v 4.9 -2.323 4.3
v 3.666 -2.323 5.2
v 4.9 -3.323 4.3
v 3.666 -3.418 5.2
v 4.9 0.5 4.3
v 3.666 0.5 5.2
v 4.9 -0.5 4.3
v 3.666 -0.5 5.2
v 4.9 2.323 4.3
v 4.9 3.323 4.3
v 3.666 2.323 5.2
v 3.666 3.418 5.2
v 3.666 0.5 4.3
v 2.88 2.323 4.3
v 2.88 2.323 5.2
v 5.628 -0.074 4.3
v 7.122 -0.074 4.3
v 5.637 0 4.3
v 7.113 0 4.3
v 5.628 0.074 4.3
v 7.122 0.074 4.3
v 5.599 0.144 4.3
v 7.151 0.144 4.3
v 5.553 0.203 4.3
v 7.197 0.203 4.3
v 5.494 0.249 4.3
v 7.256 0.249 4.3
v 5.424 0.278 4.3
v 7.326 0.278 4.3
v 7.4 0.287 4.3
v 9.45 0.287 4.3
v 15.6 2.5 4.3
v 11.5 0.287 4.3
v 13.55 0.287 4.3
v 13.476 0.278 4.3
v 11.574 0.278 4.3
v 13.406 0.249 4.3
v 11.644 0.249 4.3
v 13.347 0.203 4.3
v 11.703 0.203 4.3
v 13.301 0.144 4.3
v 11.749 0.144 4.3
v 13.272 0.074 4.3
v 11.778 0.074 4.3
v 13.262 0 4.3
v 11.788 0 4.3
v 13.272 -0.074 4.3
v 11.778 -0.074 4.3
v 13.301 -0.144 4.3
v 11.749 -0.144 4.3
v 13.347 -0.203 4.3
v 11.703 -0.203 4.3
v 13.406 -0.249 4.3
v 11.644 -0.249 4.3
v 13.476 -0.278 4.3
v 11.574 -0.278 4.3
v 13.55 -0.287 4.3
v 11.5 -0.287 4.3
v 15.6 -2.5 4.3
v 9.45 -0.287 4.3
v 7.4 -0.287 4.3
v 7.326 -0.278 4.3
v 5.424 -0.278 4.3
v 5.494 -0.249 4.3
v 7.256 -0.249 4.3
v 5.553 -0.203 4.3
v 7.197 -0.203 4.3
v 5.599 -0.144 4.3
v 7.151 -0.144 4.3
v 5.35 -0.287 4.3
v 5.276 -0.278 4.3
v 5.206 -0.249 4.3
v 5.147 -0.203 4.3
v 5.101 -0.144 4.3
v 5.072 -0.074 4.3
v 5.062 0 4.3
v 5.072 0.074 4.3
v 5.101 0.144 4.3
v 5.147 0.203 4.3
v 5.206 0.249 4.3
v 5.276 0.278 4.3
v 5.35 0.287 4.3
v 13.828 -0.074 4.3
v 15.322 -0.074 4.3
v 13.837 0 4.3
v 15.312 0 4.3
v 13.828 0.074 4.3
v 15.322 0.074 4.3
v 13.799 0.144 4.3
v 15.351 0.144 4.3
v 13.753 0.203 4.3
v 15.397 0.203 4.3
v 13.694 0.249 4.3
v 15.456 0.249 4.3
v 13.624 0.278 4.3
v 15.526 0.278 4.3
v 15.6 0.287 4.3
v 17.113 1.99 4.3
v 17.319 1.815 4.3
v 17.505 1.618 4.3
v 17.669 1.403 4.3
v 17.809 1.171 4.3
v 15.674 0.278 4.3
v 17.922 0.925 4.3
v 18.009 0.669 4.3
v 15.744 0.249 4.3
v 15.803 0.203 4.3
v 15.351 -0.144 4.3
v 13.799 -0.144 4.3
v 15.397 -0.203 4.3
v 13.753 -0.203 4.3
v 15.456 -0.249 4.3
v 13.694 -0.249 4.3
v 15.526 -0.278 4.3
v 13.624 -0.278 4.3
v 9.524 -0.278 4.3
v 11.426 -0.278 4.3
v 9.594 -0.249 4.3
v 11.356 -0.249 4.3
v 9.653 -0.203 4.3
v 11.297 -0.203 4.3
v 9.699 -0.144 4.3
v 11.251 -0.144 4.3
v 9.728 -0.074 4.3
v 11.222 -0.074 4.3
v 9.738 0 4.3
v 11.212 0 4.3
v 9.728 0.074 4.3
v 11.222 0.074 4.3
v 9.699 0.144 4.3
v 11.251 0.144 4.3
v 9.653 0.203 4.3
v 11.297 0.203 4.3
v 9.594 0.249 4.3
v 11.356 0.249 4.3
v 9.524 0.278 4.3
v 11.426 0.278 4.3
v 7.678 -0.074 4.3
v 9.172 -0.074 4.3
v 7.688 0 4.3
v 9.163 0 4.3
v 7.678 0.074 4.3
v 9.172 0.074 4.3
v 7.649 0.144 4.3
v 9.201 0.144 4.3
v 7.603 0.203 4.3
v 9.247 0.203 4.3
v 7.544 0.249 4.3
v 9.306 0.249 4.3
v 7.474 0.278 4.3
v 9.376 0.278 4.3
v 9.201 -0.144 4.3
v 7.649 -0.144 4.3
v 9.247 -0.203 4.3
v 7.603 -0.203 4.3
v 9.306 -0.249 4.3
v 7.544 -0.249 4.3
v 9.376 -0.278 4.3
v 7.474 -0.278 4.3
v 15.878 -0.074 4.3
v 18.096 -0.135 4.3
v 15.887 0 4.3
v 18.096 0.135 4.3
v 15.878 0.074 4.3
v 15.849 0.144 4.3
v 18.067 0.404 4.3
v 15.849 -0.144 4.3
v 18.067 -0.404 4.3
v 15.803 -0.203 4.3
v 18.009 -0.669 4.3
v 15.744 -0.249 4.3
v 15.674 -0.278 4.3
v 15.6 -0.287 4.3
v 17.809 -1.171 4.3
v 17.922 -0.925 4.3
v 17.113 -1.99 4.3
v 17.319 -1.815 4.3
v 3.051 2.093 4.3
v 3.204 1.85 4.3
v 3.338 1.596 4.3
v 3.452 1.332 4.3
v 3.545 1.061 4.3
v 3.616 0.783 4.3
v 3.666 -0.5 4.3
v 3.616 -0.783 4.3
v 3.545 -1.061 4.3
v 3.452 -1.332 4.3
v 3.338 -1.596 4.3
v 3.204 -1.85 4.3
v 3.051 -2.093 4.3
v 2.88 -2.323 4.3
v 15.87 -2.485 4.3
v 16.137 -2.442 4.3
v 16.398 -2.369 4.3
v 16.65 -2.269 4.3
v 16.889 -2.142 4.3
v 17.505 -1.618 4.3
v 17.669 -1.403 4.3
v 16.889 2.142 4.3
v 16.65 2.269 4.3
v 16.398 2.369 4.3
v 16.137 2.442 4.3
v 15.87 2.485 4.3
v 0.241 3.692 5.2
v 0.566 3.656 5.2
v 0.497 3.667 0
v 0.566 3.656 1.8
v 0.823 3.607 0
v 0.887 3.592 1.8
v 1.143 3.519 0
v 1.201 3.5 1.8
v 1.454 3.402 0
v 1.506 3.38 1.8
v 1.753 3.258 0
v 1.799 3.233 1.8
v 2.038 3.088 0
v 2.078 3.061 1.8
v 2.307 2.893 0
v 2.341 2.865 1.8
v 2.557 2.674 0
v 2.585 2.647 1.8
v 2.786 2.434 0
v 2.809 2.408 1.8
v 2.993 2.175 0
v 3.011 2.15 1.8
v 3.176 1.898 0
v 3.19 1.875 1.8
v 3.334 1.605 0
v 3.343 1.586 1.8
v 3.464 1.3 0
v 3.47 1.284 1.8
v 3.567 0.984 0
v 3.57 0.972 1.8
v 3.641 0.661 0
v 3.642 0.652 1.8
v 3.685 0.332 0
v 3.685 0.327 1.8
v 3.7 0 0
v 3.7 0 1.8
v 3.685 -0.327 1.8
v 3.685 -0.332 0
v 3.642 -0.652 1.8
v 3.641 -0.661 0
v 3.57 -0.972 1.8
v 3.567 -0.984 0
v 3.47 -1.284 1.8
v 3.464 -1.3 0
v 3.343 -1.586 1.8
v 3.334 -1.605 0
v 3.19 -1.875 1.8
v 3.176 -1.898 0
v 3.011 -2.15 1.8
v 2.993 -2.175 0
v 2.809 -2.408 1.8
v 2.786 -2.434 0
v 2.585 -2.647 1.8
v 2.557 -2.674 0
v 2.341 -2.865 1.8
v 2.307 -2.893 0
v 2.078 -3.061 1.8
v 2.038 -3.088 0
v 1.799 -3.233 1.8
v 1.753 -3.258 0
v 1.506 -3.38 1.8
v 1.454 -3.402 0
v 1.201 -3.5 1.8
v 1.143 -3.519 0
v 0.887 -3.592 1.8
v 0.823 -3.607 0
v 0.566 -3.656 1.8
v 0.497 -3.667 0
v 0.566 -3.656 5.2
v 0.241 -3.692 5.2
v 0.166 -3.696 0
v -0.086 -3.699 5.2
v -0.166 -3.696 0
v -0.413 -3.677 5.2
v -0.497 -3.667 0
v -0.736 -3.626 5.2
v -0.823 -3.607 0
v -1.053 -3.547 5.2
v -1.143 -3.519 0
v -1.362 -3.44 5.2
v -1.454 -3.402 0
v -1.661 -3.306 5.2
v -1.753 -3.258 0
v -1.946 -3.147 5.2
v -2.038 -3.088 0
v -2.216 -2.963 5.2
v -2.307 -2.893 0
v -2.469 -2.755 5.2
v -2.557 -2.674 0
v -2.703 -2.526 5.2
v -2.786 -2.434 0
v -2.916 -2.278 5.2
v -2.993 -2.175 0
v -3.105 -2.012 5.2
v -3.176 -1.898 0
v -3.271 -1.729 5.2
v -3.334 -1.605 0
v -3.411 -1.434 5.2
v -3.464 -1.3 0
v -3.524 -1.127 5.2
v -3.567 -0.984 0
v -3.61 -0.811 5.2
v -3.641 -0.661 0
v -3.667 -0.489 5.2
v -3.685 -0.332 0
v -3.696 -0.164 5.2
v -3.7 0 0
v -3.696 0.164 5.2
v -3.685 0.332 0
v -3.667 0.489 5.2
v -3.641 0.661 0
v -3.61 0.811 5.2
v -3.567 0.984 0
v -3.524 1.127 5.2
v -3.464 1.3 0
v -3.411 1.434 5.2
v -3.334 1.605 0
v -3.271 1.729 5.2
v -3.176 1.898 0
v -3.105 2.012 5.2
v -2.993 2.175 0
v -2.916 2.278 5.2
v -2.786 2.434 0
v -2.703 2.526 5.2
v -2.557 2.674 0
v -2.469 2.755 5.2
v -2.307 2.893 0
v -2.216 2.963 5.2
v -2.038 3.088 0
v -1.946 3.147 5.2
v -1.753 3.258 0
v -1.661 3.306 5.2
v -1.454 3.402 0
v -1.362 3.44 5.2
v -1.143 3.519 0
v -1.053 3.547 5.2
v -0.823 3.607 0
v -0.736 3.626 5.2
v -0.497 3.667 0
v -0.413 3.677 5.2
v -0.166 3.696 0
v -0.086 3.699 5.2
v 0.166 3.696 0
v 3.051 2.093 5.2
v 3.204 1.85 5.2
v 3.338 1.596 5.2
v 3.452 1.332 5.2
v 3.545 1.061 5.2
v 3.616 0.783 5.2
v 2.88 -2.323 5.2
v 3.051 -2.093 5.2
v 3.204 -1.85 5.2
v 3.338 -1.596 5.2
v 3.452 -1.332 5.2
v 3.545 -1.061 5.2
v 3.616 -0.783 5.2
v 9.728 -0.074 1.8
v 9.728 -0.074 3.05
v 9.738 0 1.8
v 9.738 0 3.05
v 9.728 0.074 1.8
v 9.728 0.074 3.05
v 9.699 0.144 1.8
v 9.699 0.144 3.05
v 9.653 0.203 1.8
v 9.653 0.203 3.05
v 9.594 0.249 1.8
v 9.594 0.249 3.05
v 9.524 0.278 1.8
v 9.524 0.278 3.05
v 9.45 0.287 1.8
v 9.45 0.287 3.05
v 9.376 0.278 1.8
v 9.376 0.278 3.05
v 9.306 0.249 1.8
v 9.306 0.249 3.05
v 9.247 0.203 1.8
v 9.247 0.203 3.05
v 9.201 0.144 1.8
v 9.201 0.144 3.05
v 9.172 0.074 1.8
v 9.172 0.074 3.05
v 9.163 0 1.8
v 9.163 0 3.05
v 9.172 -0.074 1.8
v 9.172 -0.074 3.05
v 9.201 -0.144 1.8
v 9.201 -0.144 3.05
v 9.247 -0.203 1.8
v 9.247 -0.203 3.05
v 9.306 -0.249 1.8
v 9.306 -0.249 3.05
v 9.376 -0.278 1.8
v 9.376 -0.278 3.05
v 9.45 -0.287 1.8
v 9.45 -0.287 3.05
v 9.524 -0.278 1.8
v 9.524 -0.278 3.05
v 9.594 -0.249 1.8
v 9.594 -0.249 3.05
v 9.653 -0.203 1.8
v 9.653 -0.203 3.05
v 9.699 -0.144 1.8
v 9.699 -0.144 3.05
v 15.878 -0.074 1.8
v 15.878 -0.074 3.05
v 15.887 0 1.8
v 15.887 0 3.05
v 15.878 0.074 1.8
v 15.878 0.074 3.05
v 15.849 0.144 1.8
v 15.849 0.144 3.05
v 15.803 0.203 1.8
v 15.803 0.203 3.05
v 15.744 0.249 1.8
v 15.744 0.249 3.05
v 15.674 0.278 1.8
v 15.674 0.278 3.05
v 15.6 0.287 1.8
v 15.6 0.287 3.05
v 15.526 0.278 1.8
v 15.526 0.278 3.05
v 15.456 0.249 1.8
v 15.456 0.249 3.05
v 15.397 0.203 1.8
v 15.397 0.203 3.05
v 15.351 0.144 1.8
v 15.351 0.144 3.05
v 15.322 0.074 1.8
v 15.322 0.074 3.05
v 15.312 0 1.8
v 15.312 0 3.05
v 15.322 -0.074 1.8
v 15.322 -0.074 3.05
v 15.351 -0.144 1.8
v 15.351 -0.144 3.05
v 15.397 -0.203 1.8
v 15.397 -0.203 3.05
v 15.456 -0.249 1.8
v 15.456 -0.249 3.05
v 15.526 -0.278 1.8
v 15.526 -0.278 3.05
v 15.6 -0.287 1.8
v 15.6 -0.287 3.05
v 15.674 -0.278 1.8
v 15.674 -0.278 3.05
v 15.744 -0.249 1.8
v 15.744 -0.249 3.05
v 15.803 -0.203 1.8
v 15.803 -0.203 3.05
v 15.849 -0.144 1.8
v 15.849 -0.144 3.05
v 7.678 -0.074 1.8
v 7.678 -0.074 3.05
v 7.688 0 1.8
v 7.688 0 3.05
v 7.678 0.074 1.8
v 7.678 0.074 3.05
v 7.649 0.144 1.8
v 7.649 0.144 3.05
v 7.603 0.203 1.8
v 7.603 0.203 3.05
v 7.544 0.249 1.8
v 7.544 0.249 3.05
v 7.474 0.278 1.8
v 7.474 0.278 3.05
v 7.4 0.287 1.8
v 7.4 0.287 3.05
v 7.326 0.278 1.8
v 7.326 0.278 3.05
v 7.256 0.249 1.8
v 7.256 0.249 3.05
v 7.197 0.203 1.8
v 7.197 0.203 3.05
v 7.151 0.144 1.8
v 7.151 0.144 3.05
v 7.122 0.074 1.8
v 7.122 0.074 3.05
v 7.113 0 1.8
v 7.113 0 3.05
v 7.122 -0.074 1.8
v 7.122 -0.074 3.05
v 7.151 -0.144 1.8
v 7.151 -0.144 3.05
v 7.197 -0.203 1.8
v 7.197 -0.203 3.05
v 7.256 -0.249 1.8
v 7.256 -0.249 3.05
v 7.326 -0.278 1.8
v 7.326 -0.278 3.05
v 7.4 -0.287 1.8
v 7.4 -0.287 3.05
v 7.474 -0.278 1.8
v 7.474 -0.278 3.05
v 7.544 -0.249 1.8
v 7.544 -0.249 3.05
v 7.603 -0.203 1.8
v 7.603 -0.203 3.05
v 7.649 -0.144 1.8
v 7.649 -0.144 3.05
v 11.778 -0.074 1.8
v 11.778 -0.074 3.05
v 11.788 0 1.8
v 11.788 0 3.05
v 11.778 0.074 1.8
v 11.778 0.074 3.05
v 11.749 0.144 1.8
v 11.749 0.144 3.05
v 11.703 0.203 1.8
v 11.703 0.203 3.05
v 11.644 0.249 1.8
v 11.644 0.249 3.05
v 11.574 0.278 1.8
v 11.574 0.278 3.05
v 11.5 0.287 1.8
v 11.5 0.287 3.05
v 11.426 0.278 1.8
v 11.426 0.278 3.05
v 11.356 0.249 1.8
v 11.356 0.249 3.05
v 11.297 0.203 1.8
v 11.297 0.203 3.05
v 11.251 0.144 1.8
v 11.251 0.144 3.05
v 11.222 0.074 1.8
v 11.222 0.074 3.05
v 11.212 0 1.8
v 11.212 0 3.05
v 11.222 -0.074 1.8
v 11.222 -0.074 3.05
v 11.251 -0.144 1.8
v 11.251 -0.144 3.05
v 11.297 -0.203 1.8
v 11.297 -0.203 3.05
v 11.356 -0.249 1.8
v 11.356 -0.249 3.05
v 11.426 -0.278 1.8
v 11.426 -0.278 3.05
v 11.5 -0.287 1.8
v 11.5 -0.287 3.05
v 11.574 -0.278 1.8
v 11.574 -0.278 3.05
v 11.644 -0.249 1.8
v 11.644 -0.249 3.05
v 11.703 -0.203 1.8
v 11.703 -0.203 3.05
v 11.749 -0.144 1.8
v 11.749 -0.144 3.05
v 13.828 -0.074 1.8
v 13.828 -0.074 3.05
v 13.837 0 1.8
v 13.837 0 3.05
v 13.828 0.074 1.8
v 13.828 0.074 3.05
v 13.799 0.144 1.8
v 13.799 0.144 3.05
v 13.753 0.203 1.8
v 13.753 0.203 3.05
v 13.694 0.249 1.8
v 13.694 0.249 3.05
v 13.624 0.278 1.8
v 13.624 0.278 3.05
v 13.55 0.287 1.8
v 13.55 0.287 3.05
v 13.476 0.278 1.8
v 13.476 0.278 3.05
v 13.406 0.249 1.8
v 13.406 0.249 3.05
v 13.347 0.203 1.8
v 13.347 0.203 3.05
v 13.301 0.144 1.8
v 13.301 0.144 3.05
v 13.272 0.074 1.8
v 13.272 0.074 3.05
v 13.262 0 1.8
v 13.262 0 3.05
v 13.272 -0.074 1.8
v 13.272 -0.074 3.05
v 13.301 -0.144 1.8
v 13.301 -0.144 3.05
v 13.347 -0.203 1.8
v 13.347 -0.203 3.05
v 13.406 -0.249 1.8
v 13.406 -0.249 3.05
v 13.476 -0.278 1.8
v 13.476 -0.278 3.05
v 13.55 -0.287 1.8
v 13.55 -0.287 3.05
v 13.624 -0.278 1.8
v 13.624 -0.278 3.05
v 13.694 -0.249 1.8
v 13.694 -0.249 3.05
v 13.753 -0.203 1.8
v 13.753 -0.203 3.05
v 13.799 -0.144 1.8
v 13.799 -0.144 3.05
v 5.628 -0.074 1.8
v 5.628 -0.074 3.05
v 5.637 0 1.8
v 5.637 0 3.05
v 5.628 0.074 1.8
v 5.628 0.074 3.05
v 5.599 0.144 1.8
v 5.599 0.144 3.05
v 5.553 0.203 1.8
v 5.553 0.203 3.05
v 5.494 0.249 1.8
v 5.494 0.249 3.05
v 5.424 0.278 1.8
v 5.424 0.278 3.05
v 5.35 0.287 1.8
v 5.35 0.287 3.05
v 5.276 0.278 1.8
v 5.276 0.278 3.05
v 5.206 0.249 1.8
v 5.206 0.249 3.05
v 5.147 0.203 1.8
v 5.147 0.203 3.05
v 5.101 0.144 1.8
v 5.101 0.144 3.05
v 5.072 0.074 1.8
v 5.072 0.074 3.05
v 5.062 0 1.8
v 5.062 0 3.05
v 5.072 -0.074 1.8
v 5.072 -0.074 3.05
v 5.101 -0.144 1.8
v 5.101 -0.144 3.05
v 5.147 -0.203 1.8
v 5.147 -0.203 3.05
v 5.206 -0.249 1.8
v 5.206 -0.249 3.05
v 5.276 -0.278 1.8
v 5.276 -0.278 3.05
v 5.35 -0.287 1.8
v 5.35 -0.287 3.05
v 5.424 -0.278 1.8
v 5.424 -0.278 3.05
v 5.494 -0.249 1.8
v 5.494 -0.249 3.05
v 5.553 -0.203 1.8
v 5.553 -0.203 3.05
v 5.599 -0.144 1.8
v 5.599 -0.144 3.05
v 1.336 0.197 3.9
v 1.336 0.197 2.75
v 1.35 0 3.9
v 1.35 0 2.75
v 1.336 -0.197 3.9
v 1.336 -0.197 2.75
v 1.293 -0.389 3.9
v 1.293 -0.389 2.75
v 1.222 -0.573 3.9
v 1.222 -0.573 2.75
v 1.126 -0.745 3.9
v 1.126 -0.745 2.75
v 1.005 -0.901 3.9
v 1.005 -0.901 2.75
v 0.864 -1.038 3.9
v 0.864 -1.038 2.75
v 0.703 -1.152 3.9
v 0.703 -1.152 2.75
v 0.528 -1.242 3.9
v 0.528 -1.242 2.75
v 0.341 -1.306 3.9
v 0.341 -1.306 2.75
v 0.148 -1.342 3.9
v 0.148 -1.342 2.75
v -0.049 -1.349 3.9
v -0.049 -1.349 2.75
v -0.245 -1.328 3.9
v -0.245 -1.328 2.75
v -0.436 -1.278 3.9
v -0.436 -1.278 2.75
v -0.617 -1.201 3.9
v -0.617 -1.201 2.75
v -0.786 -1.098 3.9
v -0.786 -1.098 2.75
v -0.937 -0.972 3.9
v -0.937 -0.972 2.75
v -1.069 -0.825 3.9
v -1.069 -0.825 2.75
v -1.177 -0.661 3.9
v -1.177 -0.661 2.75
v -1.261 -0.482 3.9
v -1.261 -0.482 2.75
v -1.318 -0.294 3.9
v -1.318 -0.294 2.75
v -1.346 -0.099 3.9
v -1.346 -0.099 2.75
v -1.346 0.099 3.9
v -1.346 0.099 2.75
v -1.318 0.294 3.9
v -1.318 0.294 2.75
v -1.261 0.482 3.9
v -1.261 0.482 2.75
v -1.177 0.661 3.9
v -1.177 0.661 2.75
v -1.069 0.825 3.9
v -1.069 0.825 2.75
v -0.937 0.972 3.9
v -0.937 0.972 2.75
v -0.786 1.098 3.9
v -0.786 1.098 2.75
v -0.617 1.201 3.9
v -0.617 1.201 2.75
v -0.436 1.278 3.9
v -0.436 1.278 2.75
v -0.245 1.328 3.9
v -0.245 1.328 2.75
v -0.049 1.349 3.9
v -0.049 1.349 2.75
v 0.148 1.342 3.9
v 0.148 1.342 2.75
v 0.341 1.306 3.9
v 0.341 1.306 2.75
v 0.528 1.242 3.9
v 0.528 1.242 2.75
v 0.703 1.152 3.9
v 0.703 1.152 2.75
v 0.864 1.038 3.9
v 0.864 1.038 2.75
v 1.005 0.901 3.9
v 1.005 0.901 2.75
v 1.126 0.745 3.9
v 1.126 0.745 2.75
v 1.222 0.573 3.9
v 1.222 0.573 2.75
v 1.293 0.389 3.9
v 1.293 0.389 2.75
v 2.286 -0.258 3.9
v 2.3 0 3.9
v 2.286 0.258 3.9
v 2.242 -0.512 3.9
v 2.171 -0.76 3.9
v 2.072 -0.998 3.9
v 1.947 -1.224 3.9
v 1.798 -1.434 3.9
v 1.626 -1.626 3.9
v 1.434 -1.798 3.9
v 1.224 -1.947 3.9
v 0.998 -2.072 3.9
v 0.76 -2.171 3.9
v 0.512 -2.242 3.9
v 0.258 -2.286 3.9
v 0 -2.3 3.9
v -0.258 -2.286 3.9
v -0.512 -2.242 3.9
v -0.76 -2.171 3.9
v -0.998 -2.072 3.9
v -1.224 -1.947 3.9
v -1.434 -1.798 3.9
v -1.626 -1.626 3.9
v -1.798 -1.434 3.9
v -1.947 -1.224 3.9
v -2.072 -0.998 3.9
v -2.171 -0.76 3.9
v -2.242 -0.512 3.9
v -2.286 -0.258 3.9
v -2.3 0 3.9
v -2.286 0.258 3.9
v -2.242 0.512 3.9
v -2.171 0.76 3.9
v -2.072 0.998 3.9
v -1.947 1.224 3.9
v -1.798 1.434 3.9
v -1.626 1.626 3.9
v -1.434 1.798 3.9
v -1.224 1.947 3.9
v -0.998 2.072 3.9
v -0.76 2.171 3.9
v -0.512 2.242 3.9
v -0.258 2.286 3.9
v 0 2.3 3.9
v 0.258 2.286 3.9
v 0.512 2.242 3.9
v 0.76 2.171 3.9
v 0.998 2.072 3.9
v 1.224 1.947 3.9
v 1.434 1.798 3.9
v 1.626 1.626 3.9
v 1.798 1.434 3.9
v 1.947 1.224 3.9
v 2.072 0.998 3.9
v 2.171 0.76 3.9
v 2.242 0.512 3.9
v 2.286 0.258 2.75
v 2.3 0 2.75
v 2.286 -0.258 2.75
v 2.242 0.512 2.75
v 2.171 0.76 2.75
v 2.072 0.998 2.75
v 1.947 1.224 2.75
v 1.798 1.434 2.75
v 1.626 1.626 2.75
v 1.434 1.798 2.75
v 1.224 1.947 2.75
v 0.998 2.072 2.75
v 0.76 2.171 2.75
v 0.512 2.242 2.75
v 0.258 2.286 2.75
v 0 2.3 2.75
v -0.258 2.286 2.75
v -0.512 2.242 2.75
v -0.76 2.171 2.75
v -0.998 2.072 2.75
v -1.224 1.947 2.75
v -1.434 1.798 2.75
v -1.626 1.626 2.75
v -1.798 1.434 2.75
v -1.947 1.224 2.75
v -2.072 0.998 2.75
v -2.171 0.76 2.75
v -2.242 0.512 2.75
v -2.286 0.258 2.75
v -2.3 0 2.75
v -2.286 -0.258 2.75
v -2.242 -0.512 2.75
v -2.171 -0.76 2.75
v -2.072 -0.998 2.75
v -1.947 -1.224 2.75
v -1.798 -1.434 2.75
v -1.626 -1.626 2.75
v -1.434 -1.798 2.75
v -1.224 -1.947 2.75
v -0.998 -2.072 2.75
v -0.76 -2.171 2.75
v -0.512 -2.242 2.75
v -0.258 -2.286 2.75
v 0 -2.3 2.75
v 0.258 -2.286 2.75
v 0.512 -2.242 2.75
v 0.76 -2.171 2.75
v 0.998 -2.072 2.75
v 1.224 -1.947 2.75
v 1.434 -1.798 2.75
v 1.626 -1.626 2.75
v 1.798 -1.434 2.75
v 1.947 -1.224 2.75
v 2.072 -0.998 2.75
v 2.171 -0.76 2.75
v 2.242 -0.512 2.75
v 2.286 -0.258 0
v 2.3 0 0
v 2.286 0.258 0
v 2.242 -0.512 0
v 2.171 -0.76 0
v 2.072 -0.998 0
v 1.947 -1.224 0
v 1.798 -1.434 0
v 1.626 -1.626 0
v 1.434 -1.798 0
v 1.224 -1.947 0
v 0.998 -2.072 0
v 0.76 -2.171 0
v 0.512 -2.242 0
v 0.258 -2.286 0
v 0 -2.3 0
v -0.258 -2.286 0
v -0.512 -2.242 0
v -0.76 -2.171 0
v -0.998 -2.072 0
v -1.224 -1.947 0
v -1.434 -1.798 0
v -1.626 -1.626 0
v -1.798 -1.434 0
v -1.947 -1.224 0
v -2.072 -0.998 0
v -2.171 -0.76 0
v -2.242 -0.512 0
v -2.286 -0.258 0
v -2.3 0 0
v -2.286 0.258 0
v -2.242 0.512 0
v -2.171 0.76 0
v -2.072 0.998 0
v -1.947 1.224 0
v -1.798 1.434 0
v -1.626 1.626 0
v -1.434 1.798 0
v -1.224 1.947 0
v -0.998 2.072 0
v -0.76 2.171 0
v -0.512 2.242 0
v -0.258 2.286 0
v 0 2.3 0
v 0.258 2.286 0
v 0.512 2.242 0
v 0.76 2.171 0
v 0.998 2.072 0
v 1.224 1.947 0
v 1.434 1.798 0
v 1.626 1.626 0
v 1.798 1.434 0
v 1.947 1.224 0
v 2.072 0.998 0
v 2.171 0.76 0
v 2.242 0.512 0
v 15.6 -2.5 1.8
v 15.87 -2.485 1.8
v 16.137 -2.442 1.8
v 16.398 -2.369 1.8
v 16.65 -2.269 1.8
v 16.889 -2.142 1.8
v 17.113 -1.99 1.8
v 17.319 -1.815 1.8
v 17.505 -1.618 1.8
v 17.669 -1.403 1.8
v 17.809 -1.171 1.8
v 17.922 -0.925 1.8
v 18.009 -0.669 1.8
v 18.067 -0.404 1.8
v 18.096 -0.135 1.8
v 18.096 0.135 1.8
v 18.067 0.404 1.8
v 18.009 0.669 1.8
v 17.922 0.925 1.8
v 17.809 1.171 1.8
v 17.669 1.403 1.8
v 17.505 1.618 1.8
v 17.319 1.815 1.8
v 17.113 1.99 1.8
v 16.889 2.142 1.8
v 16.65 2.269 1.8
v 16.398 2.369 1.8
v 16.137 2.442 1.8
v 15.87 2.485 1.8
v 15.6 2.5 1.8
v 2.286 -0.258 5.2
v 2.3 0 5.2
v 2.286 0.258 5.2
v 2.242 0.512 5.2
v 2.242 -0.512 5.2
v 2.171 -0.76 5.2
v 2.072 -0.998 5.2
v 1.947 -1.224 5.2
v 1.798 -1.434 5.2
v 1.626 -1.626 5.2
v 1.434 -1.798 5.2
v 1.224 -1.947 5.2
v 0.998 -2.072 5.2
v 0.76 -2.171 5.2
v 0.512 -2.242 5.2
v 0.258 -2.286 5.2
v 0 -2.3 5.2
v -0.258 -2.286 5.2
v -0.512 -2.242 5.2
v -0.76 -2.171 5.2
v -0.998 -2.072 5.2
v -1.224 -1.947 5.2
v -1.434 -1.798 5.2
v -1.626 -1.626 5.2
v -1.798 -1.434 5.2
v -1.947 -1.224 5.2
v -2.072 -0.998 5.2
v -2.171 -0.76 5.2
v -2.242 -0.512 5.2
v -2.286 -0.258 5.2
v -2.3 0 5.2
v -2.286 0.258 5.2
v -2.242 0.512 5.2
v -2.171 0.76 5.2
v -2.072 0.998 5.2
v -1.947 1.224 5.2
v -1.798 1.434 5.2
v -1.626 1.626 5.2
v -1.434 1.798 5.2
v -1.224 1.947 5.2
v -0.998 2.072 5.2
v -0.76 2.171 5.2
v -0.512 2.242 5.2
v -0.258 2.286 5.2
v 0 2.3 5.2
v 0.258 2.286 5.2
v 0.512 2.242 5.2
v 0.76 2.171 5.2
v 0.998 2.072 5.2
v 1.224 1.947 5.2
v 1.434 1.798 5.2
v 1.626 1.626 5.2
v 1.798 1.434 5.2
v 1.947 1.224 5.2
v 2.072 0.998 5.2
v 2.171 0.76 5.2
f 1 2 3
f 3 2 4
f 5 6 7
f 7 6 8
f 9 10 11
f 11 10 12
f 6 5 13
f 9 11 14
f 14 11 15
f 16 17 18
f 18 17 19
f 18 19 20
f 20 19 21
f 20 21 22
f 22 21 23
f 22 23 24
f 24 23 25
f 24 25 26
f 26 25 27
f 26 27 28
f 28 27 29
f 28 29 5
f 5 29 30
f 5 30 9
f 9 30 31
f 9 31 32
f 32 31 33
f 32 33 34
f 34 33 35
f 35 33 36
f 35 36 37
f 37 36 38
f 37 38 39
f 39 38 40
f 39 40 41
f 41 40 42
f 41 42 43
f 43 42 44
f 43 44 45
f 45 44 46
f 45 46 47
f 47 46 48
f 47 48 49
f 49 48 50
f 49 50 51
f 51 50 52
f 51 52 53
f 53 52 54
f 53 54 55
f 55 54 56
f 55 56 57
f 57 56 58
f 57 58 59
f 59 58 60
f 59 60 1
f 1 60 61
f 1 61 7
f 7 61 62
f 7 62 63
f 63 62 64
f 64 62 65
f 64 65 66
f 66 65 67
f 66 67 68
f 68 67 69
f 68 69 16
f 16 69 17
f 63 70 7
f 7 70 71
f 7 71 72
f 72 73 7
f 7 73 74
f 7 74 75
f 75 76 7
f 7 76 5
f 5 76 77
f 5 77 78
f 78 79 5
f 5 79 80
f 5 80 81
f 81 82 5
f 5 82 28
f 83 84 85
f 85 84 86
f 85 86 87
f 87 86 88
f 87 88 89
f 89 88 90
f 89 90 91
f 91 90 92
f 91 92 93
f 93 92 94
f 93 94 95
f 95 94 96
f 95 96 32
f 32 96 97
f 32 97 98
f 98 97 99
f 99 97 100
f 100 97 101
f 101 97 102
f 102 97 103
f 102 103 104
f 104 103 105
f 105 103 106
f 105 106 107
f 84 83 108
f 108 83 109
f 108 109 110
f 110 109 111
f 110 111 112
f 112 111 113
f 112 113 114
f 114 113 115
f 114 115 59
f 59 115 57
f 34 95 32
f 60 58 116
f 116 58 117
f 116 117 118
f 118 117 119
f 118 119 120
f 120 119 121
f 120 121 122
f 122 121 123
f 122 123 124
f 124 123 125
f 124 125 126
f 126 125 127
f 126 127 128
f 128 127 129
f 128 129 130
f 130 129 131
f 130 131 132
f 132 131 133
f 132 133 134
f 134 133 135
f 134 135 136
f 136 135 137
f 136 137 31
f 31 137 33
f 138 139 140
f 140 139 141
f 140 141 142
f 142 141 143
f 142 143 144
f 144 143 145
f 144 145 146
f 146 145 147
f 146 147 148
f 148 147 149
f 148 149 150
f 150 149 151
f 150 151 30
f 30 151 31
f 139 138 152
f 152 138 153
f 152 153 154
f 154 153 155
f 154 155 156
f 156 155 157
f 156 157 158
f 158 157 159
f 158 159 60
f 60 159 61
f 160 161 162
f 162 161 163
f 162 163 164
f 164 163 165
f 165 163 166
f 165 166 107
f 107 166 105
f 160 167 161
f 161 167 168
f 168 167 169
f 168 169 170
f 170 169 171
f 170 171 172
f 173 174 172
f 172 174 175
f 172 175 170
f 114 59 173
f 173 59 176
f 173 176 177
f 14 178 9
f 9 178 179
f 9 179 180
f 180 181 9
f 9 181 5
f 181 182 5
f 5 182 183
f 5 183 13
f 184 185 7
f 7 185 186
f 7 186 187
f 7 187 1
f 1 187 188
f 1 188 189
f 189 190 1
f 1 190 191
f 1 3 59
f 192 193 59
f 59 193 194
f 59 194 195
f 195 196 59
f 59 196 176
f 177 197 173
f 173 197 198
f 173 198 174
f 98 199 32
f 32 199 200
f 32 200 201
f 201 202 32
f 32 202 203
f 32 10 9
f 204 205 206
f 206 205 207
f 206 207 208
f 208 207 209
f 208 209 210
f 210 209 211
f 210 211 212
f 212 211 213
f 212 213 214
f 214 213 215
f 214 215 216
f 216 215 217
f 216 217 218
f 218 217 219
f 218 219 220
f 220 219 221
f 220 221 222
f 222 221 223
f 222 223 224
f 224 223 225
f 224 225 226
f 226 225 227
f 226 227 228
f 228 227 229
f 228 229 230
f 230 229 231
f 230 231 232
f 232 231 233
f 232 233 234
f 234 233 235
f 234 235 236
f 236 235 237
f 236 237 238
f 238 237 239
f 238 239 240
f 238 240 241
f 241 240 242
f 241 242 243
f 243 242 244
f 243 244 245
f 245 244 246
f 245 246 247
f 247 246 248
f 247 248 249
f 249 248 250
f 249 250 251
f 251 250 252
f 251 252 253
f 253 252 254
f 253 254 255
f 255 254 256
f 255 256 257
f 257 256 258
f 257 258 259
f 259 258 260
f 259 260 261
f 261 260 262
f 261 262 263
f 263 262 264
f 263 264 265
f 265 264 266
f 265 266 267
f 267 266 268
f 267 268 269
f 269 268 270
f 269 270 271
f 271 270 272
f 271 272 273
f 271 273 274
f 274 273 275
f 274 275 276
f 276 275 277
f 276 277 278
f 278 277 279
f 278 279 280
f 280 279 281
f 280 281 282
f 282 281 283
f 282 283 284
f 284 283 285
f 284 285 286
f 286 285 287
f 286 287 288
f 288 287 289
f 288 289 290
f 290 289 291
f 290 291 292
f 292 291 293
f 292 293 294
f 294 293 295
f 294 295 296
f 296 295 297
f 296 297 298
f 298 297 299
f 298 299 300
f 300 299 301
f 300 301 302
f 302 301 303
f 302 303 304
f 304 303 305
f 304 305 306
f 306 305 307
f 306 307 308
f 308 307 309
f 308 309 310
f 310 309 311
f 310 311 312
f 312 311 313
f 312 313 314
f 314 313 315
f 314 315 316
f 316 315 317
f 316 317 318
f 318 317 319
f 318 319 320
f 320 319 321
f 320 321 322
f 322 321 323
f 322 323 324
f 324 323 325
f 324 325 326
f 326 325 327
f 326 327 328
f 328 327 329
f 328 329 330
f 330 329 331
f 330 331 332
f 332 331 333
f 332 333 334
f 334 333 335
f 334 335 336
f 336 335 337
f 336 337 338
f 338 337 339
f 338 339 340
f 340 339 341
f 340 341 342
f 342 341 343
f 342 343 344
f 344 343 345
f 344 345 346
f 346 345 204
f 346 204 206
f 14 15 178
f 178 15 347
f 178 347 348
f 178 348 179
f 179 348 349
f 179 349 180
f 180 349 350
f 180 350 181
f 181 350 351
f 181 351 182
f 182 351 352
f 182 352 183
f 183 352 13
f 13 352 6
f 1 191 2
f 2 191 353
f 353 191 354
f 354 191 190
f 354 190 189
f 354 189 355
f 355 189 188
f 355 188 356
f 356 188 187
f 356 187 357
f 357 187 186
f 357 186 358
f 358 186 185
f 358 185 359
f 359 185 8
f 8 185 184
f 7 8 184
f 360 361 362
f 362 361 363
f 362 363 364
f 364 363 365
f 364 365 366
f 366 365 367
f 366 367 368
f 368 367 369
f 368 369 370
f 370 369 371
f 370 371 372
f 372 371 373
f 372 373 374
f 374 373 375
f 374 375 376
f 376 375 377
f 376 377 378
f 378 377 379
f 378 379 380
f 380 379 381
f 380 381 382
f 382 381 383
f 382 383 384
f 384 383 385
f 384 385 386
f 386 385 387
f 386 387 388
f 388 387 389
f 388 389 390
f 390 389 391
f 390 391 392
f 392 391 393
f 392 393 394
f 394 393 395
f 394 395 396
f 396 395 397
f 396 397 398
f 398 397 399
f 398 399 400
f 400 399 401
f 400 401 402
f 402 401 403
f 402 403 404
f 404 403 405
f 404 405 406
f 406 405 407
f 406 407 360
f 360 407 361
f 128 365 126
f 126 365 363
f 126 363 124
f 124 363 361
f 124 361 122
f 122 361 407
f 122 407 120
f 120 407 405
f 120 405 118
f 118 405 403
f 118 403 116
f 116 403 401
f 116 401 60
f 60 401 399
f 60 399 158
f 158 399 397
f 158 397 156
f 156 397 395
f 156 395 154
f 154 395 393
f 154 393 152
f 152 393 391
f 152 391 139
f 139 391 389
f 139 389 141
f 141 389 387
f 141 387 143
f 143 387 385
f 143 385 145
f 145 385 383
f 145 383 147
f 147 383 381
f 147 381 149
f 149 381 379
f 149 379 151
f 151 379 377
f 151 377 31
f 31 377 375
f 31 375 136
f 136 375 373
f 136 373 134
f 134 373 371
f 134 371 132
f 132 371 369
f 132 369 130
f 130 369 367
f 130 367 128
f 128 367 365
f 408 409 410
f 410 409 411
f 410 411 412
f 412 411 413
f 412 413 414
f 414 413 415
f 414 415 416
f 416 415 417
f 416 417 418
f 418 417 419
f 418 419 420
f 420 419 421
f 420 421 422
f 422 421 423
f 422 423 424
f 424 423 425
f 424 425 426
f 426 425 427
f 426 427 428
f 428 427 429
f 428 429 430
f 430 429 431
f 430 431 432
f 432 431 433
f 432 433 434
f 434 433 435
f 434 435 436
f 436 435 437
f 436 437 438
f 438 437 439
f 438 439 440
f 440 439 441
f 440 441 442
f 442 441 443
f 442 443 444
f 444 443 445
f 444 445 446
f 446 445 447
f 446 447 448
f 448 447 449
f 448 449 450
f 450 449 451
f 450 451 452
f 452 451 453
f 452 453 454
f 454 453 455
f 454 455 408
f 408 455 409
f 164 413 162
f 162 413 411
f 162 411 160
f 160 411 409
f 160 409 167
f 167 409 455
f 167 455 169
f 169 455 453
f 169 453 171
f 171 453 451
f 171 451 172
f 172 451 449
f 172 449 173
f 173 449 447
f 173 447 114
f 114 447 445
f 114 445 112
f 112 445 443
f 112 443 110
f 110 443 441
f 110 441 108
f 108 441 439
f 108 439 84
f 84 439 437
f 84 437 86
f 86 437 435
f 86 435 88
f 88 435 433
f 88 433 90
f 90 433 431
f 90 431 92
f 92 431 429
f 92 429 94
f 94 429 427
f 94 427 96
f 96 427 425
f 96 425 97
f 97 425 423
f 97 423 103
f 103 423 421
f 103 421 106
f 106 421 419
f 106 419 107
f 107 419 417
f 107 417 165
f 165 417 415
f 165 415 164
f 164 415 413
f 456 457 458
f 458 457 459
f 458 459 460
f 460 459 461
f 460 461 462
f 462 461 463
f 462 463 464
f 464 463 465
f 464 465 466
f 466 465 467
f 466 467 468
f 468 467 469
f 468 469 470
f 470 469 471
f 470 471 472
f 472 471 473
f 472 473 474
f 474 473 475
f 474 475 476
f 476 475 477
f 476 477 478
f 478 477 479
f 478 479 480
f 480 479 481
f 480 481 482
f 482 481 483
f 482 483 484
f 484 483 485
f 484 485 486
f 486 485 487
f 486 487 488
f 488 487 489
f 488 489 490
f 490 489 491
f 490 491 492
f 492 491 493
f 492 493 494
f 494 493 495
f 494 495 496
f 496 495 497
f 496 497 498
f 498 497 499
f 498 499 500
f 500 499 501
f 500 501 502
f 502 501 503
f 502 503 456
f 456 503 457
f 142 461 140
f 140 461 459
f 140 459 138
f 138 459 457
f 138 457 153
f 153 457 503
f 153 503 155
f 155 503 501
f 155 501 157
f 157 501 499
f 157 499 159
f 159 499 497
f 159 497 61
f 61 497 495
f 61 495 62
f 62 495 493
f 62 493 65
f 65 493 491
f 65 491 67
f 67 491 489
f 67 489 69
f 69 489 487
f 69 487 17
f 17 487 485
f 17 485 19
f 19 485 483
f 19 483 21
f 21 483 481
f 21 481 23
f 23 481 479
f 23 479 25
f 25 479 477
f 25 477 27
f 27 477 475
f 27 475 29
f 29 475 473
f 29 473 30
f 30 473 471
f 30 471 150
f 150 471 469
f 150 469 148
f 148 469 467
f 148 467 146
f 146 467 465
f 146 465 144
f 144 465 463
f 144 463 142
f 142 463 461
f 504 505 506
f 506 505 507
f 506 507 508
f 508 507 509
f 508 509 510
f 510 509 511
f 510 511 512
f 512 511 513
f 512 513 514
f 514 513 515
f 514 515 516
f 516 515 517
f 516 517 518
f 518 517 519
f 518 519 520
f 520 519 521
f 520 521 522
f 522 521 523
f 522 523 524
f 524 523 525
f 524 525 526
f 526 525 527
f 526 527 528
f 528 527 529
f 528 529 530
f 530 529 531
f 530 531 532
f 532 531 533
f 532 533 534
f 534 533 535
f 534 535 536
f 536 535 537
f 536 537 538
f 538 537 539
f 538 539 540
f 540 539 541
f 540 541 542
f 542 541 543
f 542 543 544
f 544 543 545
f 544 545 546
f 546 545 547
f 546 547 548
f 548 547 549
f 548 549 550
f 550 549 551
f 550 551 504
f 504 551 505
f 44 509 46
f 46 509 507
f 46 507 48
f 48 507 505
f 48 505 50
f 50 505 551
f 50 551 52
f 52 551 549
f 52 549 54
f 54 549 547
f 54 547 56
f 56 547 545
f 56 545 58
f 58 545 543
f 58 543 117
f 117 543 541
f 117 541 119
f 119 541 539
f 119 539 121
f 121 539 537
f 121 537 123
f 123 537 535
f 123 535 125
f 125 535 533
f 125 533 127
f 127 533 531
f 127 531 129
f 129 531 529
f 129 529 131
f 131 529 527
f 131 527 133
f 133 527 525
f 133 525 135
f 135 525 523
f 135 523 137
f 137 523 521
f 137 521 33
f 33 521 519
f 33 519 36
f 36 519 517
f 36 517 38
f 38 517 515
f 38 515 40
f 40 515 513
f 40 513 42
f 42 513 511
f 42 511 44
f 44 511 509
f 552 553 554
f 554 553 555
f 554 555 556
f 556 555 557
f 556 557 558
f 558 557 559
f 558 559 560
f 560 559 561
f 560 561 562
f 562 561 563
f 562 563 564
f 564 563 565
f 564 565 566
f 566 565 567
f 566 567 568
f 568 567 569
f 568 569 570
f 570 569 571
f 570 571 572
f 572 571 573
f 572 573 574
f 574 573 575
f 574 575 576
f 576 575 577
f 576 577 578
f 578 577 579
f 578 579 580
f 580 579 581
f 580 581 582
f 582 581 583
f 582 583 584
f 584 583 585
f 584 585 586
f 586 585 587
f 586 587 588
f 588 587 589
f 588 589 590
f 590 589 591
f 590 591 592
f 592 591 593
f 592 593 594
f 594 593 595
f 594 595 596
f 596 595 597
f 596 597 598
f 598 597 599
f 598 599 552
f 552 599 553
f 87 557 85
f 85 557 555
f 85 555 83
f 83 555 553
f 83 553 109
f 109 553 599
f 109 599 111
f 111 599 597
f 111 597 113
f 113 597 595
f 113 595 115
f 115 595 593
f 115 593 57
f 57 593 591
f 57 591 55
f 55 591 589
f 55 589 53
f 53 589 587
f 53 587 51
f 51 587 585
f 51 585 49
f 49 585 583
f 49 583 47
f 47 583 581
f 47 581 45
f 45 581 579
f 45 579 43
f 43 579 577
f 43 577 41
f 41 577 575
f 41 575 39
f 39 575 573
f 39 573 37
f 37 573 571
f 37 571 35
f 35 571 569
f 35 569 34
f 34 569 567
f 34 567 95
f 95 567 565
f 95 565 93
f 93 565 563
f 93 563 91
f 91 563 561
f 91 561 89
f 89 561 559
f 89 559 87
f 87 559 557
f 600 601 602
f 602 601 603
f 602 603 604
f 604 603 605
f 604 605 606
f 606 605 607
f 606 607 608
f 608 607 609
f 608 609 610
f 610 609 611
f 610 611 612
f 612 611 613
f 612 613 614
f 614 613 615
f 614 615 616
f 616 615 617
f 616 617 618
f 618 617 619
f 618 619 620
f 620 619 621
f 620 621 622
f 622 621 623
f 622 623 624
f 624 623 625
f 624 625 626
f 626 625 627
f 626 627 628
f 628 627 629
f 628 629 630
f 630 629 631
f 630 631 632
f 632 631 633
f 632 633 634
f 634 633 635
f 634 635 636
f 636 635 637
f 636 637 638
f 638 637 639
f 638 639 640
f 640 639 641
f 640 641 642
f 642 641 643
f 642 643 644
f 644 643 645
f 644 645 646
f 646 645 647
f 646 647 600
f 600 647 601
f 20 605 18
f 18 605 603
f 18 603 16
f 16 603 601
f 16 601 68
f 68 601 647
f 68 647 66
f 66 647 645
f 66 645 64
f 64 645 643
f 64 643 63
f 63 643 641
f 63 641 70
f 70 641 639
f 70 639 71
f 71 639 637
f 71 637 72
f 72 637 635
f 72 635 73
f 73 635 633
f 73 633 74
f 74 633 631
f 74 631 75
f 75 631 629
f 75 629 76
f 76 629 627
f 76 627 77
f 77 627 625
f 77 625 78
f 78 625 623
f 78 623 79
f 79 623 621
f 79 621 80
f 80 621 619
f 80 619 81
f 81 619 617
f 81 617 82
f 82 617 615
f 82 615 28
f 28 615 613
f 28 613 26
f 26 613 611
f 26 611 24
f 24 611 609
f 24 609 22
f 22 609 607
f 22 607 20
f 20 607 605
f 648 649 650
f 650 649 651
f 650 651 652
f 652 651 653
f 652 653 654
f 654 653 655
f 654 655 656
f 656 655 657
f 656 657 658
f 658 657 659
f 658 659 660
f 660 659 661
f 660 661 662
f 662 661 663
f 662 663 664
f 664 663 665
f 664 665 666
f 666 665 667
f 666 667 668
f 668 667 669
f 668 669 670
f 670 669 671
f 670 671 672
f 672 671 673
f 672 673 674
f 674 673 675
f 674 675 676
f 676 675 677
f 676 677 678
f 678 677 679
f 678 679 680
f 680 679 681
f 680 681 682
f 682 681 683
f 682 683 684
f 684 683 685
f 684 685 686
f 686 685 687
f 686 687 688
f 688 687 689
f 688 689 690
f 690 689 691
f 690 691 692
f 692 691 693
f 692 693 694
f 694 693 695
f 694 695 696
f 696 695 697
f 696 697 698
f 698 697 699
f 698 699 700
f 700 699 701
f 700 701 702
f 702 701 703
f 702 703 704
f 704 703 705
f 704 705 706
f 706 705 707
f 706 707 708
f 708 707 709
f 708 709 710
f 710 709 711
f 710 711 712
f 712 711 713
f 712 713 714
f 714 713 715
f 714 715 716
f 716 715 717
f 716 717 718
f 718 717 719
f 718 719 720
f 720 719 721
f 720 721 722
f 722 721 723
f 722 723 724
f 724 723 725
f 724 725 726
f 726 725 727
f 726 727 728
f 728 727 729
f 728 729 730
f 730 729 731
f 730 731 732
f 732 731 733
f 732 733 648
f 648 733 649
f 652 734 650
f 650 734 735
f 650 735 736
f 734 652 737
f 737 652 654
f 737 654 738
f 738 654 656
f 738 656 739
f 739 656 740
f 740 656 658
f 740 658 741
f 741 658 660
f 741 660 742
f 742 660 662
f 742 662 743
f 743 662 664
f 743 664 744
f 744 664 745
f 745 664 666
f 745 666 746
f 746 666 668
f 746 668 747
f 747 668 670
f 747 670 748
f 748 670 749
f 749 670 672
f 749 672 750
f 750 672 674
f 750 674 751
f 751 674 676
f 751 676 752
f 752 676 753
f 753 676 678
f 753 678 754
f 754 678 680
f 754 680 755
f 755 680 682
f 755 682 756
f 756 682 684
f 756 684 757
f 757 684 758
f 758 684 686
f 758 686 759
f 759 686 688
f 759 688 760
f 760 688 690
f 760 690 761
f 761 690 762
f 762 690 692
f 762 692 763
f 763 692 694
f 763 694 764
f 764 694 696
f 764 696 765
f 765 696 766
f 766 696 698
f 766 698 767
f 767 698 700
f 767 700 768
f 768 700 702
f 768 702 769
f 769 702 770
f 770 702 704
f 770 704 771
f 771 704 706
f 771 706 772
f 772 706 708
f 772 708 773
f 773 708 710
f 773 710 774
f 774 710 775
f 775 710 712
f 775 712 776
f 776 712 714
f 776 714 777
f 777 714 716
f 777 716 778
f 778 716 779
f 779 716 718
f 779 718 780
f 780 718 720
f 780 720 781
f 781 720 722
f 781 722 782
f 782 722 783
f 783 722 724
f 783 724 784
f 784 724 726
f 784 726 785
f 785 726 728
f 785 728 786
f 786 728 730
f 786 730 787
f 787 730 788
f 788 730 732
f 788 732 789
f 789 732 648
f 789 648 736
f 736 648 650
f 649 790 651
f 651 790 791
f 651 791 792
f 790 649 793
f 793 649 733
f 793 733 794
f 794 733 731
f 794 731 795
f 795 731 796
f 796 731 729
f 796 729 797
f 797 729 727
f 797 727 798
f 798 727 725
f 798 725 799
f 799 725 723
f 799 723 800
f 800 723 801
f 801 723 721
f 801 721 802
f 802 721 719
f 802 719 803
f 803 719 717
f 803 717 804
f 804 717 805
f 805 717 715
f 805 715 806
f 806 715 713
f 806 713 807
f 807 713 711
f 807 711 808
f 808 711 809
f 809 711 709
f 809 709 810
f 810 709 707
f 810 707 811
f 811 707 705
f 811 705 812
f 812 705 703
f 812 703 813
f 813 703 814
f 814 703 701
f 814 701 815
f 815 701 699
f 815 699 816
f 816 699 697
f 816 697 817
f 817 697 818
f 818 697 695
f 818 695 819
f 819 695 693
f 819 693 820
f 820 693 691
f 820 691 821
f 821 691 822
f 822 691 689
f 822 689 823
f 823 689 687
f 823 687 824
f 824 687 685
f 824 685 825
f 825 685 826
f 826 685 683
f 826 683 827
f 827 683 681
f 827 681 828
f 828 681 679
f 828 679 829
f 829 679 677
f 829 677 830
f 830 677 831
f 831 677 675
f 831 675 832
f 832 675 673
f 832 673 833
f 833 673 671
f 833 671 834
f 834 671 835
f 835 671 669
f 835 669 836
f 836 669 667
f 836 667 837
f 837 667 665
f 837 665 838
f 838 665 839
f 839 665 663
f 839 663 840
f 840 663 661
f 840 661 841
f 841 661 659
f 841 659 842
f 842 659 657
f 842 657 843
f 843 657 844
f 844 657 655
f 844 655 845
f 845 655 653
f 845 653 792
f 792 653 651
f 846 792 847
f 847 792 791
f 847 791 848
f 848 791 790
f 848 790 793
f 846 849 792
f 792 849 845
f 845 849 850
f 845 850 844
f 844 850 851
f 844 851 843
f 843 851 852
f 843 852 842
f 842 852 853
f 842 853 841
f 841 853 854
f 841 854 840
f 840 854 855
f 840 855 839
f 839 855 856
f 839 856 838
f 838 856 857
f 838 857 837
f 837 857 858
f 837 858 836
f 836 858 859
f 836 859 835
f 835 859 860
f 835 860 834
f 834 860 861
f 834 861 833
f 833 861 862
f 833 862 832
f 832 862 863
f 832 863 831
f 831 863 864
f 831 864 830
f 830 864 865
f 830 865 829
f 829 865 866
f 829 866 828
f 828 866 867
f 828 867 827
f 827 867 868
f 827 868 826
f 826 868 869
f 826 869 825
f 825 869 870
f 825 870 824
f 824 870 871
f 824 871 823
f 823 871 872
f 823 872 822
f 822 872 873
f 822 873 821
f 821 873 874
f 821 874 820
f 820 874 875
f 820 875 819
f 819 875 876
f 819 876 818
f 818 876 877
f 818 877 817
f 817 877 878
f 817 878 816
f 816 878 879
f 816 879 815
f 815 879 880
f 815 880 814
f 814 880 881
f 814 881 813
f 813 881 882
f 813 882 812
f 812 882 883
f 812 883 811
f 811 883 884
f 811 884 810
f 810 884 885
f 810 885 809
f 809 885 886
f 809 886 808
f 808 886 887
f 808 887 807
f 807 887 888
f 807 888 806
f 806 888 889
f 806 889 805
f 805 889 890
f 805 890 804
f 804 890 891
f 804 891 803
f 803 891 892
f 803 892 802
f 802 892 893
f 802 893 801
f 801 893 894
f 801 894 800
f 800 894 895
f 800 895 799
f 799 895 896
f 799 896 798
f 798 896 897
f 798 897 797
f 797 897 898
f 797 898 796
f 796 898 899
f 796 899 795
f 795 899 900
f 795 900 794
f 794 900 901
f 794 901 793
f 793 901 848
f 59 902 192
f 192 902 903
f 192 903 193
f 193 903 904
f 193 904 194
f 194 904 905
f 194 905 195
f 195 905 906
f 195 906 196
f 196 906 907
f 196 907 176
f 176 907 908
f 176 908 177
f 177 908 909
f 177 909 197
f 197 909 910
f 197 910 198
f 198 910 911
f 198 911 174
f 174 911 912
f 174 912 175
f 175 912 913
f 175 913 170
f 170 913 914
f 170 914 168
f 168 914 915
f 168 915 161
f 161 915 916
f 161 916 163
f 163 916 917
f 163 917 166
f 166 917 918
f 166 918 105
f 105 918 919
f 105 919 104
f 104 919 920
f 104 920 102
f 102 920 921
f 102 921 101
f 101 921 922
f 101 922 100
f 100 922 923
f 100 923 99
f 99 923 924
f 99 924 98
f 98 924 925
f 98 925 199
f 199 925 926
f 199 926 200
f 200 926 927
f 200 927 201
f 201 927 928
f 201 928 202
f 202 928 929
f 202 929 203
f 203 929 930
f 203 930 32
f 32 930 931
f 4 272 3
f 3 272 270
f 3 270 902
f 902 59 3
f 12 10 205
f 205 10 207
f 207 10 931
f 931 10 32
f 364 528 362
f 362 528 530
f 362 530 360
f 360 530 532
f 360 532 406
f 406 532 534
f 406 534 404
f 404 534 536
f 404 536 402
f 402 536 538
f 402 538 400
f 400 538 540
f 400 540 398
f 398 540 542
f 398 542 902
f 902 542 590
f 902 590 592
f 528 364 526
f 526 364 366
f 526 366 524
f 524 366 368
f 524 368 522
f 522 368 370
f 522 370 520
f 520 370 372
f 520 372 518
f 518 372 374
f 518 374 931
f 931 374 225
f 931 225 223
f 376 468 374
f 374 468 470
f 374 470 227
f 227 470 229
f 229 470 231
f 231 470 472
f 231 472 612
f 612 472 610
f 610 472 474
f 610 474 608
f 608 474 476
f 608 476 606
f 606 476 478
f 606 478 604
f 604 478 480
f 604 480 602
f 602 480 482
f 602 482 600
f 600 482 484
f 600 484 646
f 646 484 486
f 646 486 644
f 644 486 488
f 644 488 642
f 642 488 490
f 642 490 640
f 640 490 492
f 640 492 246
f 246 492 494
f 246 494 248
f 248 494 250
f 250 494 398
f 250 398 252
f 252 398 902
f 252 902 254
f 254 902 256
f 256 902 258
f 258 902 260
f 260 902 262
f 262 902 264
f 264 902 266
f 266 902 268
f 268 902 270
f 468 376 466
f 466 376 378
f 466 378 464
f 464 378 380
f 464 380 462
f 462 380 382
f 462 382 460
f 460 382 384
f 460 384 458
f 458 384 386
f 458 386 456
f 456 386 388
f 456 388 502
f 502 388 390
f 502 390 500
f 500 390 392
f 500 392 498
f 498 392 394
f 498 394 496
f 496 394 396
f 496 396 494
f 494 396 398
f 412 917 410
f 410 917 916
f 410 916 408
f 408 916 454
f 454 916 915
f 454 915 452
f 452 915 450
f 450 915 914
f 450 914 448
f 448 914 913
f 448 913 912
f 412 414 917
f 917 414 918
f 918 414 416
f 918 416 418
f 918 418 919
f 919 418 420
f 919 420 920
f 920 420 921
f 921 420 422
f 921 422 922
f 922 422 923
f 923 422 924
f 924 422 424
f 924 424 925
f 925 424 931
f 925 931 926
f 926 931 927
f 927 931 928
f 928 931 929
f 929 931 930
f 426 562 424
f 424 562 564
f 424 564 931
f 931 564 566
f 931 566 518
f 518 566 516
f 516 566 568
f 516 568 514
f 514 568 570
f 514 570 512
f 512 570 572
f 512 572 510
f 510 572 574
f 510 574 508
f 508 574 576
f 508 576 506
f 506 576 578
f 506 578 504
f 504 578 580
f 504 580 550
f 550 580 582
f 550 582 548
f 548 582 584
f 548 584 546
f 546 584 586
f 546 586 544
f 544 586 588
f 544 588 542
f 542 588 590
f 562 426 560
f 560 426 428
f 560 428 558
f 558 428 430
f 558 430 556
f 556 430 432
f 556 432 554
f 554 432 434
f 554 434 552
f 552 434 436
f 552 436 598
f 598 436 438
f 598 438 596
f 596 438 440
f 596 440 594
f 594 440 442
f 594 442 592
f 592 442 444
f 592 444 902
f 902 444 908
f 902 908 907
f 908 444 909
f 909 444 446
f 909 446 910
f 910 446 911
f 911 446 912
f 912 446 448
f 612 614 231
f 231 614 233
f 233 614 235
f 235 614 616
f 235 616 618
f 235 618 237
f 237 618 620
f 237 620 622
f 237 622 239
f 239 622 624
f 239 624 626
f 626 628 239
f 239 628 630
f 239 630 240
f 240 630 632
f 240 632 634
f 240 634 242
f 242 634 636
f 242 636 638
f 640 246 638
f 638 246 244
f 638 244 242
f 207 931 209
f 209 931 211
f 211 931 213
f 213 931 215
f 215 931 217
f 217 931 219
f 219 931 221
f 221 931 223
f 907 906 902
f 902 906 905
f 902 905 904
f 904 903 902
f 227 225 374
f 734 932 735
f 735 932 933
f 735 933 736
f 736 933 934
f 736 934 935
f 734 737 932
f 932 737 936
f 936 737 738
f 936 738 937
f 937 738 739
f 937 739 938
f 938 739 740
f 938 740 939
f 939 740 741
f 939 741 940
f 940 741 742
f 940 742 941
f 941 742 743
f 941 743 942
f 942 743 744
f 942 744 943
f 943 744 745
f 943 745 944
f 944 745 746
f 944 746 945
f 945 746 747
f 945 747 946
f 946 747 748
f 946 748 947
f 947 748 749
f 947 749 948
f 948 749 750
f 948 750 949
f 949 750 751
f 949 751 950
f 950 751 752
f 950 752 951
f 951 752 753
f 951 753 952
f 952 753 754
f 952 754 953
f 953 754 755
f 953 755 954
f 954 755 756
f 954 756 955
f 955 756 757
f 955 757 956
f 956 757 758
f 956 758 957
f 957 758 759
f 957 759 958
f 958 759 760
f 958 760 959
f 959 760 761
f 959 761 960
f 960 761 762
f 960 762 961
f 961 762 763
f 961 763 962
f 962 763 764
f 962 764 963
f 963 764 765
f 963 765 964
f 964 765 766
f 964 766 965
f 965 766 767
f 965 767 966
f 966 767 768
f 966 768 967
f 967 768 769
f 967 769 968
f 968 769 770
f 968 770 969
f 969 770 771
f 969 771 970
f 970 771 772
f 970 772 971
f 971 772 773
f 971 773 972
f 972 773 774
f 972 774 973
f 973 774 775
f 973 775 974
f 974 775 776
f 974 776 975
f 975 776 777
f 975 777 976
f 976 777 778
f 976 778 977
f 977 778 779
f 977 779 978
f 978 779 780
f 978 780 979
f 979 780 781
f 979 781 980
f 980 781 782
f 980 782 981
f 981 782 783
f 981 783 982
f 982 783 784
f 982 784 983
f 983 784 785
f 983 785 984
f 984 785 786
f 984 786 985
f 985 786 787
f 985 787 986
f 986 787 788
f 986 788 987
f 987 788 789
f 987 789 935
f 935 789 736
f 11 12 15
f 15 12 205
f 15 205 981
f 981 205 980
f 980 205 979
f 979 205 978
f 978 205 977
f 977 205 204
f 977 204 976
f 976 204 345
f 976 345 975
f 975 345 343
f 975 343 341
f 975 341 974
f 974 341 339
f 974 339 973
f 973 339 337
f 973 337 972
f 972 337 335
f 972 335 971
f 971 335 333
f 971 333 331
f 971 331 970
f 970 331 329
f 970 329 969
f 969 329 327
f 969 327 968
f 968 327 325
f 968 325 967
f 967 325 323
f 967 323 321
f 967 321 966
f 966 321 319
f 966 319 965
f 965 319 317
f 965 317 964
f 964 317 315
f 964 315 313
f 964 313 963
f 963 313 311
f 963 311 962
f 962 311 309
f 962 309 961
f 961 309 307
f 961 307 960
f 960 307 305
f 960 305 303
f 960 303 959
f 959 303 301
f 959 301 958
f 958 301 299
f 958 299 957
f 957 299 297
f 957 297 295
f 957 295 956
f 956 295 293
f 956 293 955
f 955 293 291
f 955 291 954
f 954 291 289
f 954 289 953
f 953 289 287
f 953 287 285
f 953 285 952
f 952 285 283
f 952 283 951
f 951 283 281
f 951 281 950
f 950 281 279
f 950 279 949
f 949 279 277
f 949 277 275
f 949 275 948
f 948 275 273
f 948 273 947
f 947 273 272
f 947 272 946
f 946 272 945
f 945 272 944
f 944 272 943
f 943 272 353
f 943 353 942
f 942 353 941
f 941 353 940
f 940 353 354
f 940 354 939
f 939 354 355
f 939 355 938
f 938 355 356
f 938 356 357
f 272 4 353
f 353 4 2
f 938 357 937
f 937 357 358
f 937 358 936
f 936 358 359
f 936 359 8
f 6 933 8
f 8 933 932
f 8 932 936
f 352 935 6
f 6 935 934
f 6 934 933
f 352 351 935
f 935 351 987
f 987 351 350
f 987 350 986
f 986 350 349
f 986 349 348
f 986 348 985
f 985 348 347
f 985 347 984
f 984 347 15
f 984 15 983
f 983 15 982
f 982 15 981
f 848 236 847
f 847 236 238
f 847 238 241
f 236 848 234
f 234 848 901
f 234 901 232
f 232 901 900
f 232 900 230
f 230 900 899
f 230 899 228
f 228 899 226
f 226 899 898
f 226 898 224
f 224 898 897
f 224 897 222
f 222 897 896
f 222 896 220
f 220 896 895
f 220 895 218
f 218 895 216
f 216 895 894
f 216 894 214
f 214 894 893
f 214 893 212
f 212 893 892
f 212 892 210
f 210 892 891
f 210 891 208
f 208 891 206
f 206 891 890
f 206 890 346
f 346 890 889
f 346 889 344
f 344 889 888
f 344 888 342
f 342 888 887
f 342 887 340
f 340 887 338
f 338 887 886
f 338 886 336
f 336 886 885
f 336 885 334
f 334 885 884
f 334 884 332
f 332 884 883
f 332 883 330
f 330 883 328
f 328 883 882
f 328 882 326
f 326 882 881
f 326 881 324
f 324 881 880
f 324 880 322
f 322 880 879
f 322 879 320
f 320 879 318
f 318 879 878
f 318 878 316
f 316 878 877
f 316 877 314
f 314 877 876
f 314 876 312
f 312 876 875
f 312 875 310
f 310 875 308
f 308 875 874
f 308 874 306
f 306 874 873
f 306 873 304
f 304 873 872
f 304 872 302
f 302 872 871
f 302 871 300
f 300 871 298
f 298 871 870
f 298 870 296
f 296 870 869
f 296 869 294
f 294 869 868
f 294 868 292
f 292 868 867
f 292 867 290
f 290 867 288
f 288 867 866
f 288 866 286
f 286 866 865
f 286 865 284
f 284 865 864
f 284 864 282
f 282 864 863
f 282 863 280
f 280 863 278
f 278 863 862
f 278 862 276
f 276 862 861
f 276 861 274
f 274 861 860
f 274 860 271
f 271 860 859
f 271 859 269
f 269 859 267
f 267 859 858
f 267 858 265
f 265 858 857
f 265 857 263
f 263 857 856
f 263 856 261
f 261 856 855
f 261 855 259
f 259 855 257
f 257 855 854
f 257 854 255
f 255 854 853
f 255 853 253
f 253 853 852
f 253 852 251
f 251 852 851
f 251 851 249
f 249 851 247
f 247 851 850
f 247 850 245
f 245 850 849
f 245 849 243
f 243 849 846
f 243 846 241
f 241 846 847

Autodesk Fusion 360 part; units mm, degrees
sketch "Sketch4" plane through (0, 0, 0) normal (0, 0, 1) x (-1, 0, 0)
  circle A0 centre (-15.6, 0) radius 2.5
  line L0 (3.7, 0) -> (-18.1, 0) construction
  circle A1 centre (0, 0) radius 3.7
  line L1 (0, 0) -> (0, -3.7) construction
  line L2 (0, 0) -> (0, 3.7) construction
  line L3 (-15.6, 0) -> (-15.6, -2.5) construction
  line L4 (-15.6, 0) -> (-15.6, 2.5) construction
  line L5 (-15.6, -2.5) -> (0, -3.7)
  line L6 (-15.6, 2.5) -> (0, 3.7)
  circle A2 centre (0, 0) radius 1.35
  circle A3 centre (0, 0) radius 2.3
  circle A4 centre (-15.6, 0) radius 0.2875
  circle A5 centre (-13.55, 0) radius 0.2875
  circle A6 centre (-11.5, 0) radius 0.2875
  circle A7 centre (-9.45, 0) radius 0.2875
  circle A8 centre (-7.4, 0) radius 0.2875
  circle A9 centre (-5.35, 0) radius 0.2875
  point P0 (-15.6, 0)
  point P1 (-4.9, 0)
  dimension "d12" = 5
  dimension "d13" = 21.8
  dimension "d14" = 3.7
  dimension "d15" = 2.5
  dimension "d16" = 7.4
  dimension "d17" = 2.7
  dimension "d18" = 4.6
  dimension "d24" = 13.2
  dimension "d28" = 0.575
  dimension "d31" = -2.05
  dimension "d32" = 0
extrude "Extrude3" add sketch "Sketch4" along normal blind 5.2 contours A1 L5 L6 | A1 L6 | A1 L5
extrude "Extrude4" add sketch "Sketch4" along normal blind 2.5 from surface at 1.8 contours A0 | A0 A1 L5 L6 | A4 | A5 | A6 | A7 | A8 | A9
extrude "Extrude5" add sketch "Sketch4" along normal blind 1.15 from surface at 2.75 contours A3
extrude "Extrude6" cut sketch "Sketch4" along normal through all contours A4 | A5 | A6 | A7 | A8 | A9
sketch "Sketch5" plane through (0, 0, 4.3) normal (0, 0, 1) x (-1, 0, 0)
  circle A0 centre (-9.45, 0) radius 0.2875
  circle A1 centre (-15.6, 0) radius 0.2875
  circle A2 centre (-7.4, 0) radius 0.2875
  circle A3 centre (-11.5, 0) radius 0.2875
  circle A4 centre (-13.55, 0) radius 0.2875
  circle A5 centre (-5.35, 0) radius 0.2875
  line L0 (-15.6, -2.5) -> (-0.5659, -3.6565)
  arc A6 (-0.5659, 3.6565) -> (-0.5659, -3.6565) centre (0, 0) ccw
  line L1 (-0.5659, 3.6565) -> (-15.6, 2.5)
  arc A7 (-15.6, 2.5) -> (-15.6, -2.5) centre (-15.6, 0) ccw
  line L2 (3.7, 0) -> (-18.1, 0)
  line L3 (-4.9, 0) -> (-4.9, -3.3231) construction
  line L4 (-4.9, 0) -> (-4.9, 3.3231) construction
  line L5 (-4.9, -2.3231) -> (2.8798, -2.3231)
  line L6 (-4.9, -0.5) -> (3.6661, -0.5)
  line L7 (-4.9, 0.5) -> (3.6661, 0.5)
  line L8 (-4.9, 2.3231) -> (2.8798, 2.3231)
  line L9 (-4.9, -3.3231) -> (-4.9, -2.3231)
  line L10 (-4.9, -0.5) -> (-4.9, 0.5)
  line L11 (-4.9, 2.3231) -> (-4.9, 3.3231)
  point P0 (-4.9, 0)
  dimension "d34" = 1
  dimension "d35" = 0.5
  dimension "d36" = 0.5
  dimension "d37" = 1
extrude "Extrude7" add sketch "Sketch5" along normal up to surface (0.9 mm away) contours A6 L2 L7 L10 | A6 L2 L6 L10 | A6 L1 L8 L11 | L0 A6 L5 L9
ref_plane "WorkPlane1" through (4.283, -3.7, 4.75) normal (0, -1, 0) x (1, 0, 0)
sketch "Sketch7" plane through (0, -3.7, 0) normal (0, -1, 0) x (-1, 0, 0)
  line L0 (-4.9, -5.2) -> (-3.6661, -5.2)
  line L1 (-3.6661, -5.2) -> (-3.6661, -4.3)
  line L2 (-3.6661, -4.3) -> (-4.9, -4.3)
  line L3 (-4.9, -4.3) -> (-4.9, -5.2)
  line L4 (-3.6661, -5.2) -> (-4.9, -4.3)
extrude "Extrude8" cut sketch "Sketch7" against normal through all contours L0 L3 L4
equation "d14 = d16 / 2"
equation "d15 = d12 / 2"
equation "d36 = d35"
